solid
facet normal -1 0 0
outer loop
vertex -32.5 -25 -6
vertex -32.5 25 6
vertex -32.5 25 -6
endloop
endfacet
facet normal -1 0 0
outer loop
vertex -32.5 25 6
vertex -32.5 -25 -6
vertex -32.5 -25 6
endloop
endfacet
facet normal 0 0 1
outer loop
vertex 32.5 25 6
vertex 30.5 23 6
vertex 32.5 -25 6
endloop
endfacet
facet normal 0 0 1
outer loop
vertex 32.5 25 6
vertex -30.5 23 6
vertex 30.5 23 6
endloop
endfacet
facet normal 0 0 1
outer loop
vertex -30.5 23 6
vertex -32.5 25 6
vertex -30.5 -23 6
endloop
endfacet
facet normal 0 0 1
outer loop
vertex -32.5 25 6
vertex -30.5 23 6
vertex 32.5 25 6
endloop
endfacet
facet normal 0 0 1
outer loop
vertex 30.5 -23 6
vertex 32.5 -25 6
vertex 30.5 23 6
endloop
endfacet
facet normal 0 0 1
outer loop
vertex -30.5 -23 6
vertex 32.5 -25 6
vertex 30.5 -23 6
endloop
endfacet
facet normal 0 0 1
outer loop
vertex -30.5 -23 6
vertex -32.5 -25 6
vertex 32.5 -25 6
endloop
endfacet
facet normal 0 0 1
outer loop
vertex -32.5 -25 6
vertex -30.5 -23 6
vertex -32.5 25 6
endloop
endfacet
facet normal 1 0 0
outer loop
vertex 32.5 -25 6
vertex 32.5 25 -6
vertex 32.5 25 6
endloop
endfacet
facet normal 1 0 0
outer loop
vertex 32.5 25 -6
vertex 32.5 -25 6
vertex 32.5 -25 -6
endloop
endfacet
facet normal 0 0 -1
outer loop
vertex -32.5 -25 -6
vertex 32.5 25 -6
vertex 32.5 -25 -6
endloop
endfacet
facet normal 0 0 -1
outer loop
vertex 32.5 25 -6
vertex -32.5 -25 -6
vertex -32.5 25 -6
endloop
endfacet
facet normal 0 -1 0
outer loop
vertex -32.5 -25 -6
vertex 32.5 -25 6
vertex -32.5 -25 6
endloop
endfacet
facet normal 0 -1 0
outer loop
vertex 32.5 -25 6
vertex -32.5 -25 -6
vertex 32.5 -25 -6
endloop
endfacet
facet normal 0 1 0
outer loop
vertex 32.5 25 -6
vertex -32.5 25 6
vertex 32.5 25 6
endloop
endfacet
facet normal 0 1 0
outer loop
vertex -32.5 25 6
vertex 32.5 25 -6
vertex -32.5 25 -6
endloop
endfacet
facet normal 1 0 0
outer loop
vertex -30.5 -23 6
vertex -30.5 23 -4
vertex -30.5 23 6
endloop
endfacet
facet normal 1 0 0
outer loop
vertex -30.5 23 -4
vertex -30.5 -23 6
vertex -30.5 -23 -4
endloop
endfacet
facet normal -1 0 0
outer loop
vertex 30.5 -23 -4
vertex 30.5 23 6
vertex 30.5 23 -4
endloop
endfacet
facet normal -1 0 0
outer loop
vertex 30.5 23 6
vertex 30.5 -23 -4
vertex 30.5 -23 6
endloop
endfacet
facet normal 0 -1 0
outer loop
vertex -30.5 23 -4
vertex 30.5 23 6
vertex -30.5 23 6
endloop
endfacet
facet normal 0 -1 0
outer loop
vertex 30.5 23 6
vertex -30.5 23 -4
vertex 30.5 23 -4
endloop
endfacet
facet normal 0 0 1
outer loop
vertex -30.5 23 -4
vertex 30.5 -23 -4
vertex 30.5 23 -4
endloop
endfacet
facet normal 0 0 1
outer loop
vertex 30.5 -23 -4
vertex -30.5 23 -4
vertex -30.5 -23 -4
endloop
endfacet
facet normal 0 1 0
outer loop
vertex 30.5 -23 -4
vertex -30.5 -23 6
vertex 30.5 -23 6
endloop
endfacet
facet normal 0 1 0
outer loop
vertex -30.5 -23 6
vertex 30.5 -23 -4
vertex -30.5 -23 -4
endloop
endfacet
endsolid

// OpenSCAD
overlap=0.001;
$fn=128;

// trough dimensions
width=65;
wall=4;
length=50;
depth=12;

trough();
//outer();
//inner();

module trough()
{
    difference()
    {
        outer();
        
        inner();
    }
}
        

module outer()
{
    cube(size=[width,length,depth], center=true);
}

module inner()
{
    translate([0,0,wall/2])
    cube(size=[width-wall,length-wall,depth], center=true);
}
